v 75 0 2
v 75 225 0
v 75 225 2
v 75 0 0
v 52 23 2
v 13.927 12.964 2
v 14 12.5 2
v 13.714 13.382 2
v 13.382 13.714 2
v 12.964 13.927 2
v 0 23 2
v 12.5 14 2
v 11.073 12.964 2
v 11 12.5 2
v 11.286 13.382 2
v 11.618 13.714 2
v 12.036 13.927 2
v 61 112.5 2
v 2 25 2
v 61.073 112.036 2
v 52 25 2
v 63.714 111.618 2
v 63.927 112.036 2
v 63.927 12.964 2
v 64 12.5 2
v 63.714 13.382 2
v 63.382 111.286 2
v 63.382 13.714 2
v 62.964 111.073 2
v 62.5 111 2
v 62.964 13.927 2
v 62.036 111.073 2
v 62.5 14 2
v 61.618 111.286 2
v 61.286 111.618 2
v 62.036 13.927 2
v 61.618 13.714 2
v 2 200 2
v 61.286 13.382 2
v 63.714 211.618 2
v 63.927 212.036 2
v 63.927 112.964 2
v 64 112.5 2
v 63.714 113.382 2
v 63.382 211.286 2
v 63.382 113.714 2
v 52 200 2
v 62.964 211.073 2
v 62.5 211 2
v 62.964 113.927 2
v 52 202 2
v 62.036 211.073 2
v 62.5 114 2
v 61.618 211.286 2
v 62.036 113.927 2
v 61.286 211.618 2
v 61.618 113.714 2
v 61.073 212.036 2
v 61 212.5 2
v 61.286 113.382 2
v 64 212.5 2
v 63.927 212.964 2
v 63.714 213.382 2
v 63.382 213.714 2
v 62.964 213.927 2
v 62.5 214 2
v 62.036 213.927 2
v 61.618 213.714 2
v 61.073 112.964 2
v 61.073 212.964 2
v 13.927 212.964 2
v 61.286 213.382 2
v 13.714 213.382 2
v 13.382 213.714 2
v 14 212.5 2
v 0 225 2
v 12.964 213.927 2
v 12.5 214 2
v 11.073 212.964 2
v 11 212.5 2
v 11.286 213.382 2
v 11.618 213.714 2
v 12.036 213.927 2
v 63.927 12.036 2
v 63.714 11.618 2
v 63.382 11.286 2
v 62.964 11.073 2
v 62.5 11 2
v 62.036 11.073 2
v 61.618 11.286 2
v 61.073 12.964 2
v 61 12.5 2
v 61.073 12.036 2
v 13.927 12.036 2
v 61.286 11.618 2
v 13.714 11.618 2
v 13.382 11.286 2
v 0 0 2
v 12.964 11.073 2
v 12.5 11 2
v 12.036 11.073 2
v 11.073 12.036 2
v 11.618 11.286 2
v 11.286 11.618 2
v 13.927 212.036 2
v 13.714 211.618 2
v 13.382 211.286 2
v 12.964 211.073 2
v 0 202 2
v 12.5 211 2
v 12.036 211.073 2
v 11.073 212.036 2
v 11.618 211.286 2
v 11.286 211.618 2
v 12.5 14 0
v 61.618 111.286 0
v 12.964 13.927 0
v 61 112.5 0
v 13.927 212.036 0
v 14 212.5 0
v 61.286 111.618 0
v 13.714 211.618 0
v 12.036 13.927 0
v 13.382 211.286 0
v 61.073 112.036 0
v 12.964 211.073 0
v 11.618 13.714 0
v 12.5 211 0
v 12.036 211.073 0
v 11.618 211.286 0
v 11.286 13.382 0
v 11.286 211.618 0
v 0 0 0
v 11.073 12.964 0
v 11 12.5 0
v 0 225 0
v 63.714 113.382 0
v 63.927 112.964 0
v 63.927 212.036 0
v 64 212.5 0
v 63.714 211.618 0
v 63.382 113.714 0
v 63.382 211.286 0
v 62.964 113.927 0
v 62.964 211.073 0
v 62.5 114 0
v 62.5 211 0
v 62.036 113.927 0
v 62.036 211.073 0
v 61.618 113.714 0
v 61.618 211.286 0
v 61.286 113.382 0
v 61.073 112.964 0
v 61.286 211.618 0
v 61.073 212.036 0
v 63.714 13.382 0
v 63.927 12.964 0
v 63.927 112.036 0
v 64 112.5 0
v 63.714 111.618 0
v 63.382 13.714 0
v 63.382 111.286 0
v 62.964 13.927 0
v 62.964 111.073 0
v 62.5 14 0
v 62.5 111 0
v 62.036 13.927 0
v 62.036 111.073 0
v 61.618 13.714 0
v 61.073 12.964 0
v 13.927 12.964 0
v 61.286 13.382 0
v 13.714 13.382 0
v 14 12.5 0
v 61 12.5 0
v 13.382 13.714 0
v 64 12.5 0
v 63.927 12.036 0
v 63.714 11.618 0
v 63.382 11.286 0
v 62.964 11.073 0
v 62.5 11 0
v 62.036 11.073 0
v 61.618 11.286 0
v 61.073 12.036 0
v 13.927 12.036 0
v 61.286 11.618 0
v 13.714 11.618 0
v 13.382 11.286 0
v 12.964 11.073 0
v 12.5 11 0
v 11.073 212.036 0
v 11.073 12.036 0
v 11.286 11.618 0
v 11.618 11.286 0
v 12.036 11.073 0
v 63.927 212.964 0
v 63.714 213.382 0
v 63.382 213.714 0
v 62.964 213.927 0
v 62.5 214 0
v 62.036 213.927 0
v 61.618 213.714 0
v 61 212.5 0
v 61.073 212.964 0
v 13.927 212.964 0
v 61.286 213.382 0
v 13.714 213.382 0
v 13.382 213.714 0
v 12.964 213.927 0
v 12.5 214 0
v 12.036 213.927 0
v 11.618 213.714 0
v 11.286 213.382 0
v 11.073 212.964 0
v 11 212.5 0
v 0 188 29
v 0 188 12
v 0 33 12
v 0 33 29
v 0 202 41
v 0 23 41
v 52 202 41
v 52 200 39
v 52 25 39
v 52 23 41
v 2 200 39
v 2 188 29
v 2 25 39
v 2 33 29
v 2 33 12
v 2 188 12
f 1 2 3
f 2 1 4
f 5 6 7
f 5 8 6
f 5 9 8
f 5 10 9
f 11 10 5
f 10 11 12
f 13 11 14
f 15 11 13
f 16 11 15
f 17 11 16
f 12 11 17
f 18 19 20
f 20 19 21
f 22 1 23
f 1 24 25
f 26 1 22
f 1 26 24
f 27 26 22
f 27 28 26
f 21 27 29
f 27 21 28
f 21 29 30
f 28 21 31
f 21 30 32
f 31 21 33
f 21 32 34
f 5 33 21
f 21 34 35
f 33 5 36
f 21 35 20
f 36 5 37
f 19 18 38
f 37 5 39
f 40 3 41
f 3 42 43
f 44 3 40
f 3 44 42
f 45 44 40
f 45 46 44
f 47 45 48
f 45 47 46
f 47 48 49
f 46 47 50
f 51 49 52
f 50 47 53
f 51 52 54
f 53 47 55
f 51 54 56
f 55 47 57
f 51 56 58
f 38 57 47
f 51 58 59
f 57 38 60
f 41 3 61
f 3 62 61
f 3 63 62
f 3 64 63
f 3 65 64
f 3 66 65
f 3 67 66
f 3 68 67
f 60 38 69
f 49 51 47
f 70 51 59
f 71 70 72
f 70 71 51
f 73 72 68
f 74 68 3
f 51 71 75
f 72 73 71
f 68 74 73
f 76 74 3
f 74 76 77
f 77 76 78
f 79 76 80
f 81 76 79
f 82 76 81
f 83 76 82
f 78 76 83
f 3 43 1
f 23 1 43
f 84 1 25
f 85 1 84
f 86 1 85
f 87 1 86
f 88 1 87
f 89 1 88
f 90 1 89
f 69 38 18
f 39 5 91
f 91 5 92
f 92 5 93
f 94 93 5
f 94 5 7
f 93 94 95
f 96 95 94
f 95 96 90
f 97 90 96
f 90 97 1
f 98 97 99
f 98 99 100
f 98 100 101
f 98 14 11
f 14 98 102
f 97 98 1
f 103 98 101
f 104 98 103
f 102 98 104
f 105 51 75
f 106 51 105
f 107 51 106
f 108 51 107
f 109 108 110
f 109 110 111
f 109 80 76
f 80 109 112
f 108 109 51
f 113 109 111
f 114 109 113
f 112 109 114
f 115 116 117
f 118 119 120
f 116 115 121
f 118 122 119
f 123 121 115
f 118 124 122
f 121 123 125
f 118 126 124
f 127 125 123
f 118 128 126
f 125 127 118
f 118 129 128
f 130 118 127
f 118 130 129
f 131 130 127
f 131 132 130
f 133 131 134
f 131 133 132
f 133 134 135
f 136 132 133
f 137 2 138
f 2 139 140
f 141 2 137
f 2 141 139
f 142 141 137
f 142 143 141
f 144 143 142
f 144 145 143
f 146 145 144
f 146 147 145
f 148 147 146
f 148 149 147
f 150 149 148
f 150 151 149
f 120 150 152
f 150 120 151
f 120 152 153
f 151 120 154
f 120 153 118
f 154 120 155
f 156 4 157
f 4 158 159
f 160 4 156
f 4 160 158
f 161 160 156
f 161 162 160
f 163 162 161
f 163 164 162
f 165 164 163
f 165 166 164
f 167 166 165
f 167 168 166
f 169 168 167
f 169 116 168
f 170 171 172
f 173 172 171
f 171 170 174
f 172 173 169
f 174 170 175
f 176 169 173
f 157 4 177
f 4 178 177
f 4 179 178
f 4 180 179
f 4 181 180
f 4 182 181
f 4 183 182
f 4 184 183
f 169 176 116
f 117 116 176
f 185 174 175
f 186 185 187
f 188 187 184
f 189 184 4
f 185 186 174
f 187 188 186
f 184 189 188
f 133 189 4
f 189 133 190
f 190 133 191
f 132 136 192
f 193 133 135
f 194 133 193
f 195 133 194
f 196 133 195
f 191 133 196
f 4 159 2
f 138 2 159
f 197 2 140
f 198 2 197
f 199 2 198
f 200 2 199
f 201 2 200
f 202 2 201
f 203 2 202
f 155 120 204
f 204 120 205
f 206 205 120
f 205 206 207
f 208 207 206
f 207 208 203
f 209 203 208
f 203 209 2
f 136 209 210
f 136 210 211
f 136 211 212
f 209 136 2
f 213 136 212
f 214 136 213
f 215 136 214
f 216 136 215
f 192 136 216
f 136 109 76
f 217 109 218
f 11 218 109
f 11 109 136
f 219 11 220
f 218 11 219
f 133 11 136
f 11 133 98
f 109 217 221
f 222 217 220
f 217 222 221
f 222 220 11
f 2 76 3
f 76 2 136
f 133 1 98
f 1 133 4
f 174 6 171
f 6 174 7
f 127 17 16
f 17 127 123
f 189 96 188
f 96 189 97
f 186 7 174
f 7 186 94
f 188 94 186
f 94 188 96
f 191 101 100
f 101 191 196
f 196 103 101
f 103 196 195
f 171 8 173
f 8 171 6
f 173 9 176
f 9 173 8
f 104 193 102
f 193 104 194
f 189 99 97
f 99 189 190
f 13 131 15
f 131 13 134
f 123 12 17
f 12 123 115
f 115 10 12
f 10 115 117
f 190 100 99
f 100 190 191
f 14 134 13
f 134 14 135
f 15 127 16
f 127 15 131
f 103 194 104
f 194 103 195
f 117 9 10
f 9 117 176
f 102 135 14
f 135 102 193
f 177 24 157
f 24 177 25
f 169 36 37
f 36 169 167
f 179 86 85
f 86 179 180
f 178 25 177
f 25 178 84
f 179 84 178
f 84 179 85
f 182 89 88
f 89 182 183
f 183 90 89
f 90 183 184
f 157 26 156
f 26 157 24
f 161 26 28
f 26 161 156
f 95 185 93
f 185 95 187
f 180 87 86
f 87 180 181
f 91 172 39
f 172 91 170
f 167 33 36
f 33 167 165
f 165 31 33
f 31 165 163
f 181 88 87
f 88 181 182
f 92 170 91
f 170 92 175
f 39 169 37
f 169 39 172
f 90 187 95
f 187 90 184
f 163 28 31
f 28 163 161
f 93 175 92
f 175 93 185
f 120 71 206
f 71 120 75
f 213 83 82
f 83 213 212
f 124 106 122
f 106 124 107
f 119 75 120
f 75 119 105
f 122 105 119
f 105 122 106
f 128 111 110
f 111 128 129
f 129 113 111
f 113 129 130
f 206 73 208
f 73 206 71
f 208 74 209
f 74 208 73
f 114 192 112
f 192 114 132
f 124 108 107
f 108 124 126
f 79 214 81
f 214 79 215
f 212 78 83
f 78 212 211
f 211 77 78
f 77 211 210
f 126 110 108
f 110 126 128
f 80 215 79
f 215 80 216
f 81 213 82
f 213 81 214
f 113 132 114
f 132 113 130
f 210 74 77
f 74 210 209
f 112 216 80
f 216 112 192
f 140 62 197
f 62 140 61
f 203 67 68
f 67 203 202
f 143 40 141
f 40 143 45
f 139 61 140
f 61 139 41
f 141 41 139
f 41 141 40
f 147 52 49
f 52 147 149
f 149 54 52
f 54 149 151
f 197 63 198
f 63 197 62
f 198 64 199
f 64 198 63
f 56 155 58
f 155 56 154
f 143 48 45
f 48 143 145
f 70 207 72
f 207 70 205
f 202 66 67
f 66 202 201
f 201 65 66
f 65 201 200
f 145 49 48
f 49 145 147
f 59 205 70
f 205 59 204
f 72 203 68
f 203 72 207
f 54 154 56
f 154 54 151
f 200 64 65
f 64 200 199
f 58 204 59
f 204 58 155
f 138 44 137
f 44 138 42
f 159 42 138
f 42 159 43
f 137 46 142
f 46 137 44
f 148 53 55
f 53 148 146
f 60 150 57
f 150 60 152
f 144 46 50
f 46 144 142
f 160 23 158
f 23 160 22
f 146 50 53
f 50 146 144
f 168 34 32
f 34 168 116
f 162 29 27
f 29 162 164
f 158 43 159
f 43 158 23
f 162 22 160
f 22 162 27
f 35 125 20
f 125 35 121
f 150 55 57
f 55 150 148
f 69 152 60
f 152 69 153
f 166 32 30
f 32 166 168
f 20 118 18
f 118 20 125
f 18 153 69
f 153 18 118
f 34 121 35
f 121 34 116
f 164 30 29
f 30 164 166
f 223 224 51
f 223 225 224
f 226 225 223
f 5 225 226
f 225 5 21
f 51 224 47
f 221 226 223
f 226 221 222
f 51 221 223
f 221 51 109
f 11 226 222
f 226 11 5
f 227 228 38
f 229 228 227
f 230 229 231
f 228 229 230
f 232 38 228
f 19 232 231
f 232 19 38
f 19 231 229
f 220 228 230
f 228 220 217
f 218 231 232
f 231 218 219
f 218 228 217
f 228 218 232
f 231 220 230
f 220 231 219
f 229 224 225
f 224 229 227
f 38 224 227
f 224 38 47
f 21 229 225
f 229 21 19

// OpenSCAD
thickness = 2;
pfsense_width = 50;
pfsense_depth = 175;
pfsense_height = 37;
extra_width = 25;
extra_depth = 25;
gap = extra_depth / 2;
m3_rad = 3 / 2;
segments = 20;
air_space = 10;

// Flat space.
difference()
{
    cube([extra_width + pfsense_width,
          extra_depth + pfsense_depth + extra_depth,
          thickness]);
     
    // Screw hole left under.
    translate([gap, gap, 0])
    {
        cylinder(h = thickness, r = m3_rad, $fn = segments);
    }
     
    // Screw hole right under.
    translate([extra_width + pfsense_width - gap, gap, 0])
    {
        cylinder(h = thickness, r = m3_rad, $fn = segments);
    }
     
    // Screw hole left top.
    translate([gap, extra_depth + pfsense_depth + extra_depth - gap, 0])
    {
        cylinder(h = thickness, r = m3_rad, $fn = segments);
    }
     
    // Screw hole right top.
    translate([extra_width + pfsense_width - gap, extra_depth + pfsense_depth + extra_depth - gap, 0])
    {
        cylinder(h = thickness, r = m3_rad, $fn = segments);
    }
        
    // Screw hole center top.
    translate([extra_width + pfsense_width - gap, (extra_depth + pfsense_depth + extra_depth) / 2, 0])
    {
        cylinder(h = thickness, r = m3_rad, $fn = segments);
    }
}
      
// Bucket.
translate([0, extra_depth - thickness, thickness])
{
    difference()
    {
        cube([thickness + pfsense_width, 
            thickness + pfsense_depth + thickness, 
            pfsense_height + thickness]);
        
        // Air opening bottom.
        translate([0, air_space, air_space])
        {
            cube([thickness, pfsense_depth - air_space - air_space, pfsense_height - air_space - air_space]);
        }
        
        translate([thickness, thickness, 0])
        {
            cube([pfsense_width, pfsense_depth, pfsense_height]);
        }
    }
}
    
